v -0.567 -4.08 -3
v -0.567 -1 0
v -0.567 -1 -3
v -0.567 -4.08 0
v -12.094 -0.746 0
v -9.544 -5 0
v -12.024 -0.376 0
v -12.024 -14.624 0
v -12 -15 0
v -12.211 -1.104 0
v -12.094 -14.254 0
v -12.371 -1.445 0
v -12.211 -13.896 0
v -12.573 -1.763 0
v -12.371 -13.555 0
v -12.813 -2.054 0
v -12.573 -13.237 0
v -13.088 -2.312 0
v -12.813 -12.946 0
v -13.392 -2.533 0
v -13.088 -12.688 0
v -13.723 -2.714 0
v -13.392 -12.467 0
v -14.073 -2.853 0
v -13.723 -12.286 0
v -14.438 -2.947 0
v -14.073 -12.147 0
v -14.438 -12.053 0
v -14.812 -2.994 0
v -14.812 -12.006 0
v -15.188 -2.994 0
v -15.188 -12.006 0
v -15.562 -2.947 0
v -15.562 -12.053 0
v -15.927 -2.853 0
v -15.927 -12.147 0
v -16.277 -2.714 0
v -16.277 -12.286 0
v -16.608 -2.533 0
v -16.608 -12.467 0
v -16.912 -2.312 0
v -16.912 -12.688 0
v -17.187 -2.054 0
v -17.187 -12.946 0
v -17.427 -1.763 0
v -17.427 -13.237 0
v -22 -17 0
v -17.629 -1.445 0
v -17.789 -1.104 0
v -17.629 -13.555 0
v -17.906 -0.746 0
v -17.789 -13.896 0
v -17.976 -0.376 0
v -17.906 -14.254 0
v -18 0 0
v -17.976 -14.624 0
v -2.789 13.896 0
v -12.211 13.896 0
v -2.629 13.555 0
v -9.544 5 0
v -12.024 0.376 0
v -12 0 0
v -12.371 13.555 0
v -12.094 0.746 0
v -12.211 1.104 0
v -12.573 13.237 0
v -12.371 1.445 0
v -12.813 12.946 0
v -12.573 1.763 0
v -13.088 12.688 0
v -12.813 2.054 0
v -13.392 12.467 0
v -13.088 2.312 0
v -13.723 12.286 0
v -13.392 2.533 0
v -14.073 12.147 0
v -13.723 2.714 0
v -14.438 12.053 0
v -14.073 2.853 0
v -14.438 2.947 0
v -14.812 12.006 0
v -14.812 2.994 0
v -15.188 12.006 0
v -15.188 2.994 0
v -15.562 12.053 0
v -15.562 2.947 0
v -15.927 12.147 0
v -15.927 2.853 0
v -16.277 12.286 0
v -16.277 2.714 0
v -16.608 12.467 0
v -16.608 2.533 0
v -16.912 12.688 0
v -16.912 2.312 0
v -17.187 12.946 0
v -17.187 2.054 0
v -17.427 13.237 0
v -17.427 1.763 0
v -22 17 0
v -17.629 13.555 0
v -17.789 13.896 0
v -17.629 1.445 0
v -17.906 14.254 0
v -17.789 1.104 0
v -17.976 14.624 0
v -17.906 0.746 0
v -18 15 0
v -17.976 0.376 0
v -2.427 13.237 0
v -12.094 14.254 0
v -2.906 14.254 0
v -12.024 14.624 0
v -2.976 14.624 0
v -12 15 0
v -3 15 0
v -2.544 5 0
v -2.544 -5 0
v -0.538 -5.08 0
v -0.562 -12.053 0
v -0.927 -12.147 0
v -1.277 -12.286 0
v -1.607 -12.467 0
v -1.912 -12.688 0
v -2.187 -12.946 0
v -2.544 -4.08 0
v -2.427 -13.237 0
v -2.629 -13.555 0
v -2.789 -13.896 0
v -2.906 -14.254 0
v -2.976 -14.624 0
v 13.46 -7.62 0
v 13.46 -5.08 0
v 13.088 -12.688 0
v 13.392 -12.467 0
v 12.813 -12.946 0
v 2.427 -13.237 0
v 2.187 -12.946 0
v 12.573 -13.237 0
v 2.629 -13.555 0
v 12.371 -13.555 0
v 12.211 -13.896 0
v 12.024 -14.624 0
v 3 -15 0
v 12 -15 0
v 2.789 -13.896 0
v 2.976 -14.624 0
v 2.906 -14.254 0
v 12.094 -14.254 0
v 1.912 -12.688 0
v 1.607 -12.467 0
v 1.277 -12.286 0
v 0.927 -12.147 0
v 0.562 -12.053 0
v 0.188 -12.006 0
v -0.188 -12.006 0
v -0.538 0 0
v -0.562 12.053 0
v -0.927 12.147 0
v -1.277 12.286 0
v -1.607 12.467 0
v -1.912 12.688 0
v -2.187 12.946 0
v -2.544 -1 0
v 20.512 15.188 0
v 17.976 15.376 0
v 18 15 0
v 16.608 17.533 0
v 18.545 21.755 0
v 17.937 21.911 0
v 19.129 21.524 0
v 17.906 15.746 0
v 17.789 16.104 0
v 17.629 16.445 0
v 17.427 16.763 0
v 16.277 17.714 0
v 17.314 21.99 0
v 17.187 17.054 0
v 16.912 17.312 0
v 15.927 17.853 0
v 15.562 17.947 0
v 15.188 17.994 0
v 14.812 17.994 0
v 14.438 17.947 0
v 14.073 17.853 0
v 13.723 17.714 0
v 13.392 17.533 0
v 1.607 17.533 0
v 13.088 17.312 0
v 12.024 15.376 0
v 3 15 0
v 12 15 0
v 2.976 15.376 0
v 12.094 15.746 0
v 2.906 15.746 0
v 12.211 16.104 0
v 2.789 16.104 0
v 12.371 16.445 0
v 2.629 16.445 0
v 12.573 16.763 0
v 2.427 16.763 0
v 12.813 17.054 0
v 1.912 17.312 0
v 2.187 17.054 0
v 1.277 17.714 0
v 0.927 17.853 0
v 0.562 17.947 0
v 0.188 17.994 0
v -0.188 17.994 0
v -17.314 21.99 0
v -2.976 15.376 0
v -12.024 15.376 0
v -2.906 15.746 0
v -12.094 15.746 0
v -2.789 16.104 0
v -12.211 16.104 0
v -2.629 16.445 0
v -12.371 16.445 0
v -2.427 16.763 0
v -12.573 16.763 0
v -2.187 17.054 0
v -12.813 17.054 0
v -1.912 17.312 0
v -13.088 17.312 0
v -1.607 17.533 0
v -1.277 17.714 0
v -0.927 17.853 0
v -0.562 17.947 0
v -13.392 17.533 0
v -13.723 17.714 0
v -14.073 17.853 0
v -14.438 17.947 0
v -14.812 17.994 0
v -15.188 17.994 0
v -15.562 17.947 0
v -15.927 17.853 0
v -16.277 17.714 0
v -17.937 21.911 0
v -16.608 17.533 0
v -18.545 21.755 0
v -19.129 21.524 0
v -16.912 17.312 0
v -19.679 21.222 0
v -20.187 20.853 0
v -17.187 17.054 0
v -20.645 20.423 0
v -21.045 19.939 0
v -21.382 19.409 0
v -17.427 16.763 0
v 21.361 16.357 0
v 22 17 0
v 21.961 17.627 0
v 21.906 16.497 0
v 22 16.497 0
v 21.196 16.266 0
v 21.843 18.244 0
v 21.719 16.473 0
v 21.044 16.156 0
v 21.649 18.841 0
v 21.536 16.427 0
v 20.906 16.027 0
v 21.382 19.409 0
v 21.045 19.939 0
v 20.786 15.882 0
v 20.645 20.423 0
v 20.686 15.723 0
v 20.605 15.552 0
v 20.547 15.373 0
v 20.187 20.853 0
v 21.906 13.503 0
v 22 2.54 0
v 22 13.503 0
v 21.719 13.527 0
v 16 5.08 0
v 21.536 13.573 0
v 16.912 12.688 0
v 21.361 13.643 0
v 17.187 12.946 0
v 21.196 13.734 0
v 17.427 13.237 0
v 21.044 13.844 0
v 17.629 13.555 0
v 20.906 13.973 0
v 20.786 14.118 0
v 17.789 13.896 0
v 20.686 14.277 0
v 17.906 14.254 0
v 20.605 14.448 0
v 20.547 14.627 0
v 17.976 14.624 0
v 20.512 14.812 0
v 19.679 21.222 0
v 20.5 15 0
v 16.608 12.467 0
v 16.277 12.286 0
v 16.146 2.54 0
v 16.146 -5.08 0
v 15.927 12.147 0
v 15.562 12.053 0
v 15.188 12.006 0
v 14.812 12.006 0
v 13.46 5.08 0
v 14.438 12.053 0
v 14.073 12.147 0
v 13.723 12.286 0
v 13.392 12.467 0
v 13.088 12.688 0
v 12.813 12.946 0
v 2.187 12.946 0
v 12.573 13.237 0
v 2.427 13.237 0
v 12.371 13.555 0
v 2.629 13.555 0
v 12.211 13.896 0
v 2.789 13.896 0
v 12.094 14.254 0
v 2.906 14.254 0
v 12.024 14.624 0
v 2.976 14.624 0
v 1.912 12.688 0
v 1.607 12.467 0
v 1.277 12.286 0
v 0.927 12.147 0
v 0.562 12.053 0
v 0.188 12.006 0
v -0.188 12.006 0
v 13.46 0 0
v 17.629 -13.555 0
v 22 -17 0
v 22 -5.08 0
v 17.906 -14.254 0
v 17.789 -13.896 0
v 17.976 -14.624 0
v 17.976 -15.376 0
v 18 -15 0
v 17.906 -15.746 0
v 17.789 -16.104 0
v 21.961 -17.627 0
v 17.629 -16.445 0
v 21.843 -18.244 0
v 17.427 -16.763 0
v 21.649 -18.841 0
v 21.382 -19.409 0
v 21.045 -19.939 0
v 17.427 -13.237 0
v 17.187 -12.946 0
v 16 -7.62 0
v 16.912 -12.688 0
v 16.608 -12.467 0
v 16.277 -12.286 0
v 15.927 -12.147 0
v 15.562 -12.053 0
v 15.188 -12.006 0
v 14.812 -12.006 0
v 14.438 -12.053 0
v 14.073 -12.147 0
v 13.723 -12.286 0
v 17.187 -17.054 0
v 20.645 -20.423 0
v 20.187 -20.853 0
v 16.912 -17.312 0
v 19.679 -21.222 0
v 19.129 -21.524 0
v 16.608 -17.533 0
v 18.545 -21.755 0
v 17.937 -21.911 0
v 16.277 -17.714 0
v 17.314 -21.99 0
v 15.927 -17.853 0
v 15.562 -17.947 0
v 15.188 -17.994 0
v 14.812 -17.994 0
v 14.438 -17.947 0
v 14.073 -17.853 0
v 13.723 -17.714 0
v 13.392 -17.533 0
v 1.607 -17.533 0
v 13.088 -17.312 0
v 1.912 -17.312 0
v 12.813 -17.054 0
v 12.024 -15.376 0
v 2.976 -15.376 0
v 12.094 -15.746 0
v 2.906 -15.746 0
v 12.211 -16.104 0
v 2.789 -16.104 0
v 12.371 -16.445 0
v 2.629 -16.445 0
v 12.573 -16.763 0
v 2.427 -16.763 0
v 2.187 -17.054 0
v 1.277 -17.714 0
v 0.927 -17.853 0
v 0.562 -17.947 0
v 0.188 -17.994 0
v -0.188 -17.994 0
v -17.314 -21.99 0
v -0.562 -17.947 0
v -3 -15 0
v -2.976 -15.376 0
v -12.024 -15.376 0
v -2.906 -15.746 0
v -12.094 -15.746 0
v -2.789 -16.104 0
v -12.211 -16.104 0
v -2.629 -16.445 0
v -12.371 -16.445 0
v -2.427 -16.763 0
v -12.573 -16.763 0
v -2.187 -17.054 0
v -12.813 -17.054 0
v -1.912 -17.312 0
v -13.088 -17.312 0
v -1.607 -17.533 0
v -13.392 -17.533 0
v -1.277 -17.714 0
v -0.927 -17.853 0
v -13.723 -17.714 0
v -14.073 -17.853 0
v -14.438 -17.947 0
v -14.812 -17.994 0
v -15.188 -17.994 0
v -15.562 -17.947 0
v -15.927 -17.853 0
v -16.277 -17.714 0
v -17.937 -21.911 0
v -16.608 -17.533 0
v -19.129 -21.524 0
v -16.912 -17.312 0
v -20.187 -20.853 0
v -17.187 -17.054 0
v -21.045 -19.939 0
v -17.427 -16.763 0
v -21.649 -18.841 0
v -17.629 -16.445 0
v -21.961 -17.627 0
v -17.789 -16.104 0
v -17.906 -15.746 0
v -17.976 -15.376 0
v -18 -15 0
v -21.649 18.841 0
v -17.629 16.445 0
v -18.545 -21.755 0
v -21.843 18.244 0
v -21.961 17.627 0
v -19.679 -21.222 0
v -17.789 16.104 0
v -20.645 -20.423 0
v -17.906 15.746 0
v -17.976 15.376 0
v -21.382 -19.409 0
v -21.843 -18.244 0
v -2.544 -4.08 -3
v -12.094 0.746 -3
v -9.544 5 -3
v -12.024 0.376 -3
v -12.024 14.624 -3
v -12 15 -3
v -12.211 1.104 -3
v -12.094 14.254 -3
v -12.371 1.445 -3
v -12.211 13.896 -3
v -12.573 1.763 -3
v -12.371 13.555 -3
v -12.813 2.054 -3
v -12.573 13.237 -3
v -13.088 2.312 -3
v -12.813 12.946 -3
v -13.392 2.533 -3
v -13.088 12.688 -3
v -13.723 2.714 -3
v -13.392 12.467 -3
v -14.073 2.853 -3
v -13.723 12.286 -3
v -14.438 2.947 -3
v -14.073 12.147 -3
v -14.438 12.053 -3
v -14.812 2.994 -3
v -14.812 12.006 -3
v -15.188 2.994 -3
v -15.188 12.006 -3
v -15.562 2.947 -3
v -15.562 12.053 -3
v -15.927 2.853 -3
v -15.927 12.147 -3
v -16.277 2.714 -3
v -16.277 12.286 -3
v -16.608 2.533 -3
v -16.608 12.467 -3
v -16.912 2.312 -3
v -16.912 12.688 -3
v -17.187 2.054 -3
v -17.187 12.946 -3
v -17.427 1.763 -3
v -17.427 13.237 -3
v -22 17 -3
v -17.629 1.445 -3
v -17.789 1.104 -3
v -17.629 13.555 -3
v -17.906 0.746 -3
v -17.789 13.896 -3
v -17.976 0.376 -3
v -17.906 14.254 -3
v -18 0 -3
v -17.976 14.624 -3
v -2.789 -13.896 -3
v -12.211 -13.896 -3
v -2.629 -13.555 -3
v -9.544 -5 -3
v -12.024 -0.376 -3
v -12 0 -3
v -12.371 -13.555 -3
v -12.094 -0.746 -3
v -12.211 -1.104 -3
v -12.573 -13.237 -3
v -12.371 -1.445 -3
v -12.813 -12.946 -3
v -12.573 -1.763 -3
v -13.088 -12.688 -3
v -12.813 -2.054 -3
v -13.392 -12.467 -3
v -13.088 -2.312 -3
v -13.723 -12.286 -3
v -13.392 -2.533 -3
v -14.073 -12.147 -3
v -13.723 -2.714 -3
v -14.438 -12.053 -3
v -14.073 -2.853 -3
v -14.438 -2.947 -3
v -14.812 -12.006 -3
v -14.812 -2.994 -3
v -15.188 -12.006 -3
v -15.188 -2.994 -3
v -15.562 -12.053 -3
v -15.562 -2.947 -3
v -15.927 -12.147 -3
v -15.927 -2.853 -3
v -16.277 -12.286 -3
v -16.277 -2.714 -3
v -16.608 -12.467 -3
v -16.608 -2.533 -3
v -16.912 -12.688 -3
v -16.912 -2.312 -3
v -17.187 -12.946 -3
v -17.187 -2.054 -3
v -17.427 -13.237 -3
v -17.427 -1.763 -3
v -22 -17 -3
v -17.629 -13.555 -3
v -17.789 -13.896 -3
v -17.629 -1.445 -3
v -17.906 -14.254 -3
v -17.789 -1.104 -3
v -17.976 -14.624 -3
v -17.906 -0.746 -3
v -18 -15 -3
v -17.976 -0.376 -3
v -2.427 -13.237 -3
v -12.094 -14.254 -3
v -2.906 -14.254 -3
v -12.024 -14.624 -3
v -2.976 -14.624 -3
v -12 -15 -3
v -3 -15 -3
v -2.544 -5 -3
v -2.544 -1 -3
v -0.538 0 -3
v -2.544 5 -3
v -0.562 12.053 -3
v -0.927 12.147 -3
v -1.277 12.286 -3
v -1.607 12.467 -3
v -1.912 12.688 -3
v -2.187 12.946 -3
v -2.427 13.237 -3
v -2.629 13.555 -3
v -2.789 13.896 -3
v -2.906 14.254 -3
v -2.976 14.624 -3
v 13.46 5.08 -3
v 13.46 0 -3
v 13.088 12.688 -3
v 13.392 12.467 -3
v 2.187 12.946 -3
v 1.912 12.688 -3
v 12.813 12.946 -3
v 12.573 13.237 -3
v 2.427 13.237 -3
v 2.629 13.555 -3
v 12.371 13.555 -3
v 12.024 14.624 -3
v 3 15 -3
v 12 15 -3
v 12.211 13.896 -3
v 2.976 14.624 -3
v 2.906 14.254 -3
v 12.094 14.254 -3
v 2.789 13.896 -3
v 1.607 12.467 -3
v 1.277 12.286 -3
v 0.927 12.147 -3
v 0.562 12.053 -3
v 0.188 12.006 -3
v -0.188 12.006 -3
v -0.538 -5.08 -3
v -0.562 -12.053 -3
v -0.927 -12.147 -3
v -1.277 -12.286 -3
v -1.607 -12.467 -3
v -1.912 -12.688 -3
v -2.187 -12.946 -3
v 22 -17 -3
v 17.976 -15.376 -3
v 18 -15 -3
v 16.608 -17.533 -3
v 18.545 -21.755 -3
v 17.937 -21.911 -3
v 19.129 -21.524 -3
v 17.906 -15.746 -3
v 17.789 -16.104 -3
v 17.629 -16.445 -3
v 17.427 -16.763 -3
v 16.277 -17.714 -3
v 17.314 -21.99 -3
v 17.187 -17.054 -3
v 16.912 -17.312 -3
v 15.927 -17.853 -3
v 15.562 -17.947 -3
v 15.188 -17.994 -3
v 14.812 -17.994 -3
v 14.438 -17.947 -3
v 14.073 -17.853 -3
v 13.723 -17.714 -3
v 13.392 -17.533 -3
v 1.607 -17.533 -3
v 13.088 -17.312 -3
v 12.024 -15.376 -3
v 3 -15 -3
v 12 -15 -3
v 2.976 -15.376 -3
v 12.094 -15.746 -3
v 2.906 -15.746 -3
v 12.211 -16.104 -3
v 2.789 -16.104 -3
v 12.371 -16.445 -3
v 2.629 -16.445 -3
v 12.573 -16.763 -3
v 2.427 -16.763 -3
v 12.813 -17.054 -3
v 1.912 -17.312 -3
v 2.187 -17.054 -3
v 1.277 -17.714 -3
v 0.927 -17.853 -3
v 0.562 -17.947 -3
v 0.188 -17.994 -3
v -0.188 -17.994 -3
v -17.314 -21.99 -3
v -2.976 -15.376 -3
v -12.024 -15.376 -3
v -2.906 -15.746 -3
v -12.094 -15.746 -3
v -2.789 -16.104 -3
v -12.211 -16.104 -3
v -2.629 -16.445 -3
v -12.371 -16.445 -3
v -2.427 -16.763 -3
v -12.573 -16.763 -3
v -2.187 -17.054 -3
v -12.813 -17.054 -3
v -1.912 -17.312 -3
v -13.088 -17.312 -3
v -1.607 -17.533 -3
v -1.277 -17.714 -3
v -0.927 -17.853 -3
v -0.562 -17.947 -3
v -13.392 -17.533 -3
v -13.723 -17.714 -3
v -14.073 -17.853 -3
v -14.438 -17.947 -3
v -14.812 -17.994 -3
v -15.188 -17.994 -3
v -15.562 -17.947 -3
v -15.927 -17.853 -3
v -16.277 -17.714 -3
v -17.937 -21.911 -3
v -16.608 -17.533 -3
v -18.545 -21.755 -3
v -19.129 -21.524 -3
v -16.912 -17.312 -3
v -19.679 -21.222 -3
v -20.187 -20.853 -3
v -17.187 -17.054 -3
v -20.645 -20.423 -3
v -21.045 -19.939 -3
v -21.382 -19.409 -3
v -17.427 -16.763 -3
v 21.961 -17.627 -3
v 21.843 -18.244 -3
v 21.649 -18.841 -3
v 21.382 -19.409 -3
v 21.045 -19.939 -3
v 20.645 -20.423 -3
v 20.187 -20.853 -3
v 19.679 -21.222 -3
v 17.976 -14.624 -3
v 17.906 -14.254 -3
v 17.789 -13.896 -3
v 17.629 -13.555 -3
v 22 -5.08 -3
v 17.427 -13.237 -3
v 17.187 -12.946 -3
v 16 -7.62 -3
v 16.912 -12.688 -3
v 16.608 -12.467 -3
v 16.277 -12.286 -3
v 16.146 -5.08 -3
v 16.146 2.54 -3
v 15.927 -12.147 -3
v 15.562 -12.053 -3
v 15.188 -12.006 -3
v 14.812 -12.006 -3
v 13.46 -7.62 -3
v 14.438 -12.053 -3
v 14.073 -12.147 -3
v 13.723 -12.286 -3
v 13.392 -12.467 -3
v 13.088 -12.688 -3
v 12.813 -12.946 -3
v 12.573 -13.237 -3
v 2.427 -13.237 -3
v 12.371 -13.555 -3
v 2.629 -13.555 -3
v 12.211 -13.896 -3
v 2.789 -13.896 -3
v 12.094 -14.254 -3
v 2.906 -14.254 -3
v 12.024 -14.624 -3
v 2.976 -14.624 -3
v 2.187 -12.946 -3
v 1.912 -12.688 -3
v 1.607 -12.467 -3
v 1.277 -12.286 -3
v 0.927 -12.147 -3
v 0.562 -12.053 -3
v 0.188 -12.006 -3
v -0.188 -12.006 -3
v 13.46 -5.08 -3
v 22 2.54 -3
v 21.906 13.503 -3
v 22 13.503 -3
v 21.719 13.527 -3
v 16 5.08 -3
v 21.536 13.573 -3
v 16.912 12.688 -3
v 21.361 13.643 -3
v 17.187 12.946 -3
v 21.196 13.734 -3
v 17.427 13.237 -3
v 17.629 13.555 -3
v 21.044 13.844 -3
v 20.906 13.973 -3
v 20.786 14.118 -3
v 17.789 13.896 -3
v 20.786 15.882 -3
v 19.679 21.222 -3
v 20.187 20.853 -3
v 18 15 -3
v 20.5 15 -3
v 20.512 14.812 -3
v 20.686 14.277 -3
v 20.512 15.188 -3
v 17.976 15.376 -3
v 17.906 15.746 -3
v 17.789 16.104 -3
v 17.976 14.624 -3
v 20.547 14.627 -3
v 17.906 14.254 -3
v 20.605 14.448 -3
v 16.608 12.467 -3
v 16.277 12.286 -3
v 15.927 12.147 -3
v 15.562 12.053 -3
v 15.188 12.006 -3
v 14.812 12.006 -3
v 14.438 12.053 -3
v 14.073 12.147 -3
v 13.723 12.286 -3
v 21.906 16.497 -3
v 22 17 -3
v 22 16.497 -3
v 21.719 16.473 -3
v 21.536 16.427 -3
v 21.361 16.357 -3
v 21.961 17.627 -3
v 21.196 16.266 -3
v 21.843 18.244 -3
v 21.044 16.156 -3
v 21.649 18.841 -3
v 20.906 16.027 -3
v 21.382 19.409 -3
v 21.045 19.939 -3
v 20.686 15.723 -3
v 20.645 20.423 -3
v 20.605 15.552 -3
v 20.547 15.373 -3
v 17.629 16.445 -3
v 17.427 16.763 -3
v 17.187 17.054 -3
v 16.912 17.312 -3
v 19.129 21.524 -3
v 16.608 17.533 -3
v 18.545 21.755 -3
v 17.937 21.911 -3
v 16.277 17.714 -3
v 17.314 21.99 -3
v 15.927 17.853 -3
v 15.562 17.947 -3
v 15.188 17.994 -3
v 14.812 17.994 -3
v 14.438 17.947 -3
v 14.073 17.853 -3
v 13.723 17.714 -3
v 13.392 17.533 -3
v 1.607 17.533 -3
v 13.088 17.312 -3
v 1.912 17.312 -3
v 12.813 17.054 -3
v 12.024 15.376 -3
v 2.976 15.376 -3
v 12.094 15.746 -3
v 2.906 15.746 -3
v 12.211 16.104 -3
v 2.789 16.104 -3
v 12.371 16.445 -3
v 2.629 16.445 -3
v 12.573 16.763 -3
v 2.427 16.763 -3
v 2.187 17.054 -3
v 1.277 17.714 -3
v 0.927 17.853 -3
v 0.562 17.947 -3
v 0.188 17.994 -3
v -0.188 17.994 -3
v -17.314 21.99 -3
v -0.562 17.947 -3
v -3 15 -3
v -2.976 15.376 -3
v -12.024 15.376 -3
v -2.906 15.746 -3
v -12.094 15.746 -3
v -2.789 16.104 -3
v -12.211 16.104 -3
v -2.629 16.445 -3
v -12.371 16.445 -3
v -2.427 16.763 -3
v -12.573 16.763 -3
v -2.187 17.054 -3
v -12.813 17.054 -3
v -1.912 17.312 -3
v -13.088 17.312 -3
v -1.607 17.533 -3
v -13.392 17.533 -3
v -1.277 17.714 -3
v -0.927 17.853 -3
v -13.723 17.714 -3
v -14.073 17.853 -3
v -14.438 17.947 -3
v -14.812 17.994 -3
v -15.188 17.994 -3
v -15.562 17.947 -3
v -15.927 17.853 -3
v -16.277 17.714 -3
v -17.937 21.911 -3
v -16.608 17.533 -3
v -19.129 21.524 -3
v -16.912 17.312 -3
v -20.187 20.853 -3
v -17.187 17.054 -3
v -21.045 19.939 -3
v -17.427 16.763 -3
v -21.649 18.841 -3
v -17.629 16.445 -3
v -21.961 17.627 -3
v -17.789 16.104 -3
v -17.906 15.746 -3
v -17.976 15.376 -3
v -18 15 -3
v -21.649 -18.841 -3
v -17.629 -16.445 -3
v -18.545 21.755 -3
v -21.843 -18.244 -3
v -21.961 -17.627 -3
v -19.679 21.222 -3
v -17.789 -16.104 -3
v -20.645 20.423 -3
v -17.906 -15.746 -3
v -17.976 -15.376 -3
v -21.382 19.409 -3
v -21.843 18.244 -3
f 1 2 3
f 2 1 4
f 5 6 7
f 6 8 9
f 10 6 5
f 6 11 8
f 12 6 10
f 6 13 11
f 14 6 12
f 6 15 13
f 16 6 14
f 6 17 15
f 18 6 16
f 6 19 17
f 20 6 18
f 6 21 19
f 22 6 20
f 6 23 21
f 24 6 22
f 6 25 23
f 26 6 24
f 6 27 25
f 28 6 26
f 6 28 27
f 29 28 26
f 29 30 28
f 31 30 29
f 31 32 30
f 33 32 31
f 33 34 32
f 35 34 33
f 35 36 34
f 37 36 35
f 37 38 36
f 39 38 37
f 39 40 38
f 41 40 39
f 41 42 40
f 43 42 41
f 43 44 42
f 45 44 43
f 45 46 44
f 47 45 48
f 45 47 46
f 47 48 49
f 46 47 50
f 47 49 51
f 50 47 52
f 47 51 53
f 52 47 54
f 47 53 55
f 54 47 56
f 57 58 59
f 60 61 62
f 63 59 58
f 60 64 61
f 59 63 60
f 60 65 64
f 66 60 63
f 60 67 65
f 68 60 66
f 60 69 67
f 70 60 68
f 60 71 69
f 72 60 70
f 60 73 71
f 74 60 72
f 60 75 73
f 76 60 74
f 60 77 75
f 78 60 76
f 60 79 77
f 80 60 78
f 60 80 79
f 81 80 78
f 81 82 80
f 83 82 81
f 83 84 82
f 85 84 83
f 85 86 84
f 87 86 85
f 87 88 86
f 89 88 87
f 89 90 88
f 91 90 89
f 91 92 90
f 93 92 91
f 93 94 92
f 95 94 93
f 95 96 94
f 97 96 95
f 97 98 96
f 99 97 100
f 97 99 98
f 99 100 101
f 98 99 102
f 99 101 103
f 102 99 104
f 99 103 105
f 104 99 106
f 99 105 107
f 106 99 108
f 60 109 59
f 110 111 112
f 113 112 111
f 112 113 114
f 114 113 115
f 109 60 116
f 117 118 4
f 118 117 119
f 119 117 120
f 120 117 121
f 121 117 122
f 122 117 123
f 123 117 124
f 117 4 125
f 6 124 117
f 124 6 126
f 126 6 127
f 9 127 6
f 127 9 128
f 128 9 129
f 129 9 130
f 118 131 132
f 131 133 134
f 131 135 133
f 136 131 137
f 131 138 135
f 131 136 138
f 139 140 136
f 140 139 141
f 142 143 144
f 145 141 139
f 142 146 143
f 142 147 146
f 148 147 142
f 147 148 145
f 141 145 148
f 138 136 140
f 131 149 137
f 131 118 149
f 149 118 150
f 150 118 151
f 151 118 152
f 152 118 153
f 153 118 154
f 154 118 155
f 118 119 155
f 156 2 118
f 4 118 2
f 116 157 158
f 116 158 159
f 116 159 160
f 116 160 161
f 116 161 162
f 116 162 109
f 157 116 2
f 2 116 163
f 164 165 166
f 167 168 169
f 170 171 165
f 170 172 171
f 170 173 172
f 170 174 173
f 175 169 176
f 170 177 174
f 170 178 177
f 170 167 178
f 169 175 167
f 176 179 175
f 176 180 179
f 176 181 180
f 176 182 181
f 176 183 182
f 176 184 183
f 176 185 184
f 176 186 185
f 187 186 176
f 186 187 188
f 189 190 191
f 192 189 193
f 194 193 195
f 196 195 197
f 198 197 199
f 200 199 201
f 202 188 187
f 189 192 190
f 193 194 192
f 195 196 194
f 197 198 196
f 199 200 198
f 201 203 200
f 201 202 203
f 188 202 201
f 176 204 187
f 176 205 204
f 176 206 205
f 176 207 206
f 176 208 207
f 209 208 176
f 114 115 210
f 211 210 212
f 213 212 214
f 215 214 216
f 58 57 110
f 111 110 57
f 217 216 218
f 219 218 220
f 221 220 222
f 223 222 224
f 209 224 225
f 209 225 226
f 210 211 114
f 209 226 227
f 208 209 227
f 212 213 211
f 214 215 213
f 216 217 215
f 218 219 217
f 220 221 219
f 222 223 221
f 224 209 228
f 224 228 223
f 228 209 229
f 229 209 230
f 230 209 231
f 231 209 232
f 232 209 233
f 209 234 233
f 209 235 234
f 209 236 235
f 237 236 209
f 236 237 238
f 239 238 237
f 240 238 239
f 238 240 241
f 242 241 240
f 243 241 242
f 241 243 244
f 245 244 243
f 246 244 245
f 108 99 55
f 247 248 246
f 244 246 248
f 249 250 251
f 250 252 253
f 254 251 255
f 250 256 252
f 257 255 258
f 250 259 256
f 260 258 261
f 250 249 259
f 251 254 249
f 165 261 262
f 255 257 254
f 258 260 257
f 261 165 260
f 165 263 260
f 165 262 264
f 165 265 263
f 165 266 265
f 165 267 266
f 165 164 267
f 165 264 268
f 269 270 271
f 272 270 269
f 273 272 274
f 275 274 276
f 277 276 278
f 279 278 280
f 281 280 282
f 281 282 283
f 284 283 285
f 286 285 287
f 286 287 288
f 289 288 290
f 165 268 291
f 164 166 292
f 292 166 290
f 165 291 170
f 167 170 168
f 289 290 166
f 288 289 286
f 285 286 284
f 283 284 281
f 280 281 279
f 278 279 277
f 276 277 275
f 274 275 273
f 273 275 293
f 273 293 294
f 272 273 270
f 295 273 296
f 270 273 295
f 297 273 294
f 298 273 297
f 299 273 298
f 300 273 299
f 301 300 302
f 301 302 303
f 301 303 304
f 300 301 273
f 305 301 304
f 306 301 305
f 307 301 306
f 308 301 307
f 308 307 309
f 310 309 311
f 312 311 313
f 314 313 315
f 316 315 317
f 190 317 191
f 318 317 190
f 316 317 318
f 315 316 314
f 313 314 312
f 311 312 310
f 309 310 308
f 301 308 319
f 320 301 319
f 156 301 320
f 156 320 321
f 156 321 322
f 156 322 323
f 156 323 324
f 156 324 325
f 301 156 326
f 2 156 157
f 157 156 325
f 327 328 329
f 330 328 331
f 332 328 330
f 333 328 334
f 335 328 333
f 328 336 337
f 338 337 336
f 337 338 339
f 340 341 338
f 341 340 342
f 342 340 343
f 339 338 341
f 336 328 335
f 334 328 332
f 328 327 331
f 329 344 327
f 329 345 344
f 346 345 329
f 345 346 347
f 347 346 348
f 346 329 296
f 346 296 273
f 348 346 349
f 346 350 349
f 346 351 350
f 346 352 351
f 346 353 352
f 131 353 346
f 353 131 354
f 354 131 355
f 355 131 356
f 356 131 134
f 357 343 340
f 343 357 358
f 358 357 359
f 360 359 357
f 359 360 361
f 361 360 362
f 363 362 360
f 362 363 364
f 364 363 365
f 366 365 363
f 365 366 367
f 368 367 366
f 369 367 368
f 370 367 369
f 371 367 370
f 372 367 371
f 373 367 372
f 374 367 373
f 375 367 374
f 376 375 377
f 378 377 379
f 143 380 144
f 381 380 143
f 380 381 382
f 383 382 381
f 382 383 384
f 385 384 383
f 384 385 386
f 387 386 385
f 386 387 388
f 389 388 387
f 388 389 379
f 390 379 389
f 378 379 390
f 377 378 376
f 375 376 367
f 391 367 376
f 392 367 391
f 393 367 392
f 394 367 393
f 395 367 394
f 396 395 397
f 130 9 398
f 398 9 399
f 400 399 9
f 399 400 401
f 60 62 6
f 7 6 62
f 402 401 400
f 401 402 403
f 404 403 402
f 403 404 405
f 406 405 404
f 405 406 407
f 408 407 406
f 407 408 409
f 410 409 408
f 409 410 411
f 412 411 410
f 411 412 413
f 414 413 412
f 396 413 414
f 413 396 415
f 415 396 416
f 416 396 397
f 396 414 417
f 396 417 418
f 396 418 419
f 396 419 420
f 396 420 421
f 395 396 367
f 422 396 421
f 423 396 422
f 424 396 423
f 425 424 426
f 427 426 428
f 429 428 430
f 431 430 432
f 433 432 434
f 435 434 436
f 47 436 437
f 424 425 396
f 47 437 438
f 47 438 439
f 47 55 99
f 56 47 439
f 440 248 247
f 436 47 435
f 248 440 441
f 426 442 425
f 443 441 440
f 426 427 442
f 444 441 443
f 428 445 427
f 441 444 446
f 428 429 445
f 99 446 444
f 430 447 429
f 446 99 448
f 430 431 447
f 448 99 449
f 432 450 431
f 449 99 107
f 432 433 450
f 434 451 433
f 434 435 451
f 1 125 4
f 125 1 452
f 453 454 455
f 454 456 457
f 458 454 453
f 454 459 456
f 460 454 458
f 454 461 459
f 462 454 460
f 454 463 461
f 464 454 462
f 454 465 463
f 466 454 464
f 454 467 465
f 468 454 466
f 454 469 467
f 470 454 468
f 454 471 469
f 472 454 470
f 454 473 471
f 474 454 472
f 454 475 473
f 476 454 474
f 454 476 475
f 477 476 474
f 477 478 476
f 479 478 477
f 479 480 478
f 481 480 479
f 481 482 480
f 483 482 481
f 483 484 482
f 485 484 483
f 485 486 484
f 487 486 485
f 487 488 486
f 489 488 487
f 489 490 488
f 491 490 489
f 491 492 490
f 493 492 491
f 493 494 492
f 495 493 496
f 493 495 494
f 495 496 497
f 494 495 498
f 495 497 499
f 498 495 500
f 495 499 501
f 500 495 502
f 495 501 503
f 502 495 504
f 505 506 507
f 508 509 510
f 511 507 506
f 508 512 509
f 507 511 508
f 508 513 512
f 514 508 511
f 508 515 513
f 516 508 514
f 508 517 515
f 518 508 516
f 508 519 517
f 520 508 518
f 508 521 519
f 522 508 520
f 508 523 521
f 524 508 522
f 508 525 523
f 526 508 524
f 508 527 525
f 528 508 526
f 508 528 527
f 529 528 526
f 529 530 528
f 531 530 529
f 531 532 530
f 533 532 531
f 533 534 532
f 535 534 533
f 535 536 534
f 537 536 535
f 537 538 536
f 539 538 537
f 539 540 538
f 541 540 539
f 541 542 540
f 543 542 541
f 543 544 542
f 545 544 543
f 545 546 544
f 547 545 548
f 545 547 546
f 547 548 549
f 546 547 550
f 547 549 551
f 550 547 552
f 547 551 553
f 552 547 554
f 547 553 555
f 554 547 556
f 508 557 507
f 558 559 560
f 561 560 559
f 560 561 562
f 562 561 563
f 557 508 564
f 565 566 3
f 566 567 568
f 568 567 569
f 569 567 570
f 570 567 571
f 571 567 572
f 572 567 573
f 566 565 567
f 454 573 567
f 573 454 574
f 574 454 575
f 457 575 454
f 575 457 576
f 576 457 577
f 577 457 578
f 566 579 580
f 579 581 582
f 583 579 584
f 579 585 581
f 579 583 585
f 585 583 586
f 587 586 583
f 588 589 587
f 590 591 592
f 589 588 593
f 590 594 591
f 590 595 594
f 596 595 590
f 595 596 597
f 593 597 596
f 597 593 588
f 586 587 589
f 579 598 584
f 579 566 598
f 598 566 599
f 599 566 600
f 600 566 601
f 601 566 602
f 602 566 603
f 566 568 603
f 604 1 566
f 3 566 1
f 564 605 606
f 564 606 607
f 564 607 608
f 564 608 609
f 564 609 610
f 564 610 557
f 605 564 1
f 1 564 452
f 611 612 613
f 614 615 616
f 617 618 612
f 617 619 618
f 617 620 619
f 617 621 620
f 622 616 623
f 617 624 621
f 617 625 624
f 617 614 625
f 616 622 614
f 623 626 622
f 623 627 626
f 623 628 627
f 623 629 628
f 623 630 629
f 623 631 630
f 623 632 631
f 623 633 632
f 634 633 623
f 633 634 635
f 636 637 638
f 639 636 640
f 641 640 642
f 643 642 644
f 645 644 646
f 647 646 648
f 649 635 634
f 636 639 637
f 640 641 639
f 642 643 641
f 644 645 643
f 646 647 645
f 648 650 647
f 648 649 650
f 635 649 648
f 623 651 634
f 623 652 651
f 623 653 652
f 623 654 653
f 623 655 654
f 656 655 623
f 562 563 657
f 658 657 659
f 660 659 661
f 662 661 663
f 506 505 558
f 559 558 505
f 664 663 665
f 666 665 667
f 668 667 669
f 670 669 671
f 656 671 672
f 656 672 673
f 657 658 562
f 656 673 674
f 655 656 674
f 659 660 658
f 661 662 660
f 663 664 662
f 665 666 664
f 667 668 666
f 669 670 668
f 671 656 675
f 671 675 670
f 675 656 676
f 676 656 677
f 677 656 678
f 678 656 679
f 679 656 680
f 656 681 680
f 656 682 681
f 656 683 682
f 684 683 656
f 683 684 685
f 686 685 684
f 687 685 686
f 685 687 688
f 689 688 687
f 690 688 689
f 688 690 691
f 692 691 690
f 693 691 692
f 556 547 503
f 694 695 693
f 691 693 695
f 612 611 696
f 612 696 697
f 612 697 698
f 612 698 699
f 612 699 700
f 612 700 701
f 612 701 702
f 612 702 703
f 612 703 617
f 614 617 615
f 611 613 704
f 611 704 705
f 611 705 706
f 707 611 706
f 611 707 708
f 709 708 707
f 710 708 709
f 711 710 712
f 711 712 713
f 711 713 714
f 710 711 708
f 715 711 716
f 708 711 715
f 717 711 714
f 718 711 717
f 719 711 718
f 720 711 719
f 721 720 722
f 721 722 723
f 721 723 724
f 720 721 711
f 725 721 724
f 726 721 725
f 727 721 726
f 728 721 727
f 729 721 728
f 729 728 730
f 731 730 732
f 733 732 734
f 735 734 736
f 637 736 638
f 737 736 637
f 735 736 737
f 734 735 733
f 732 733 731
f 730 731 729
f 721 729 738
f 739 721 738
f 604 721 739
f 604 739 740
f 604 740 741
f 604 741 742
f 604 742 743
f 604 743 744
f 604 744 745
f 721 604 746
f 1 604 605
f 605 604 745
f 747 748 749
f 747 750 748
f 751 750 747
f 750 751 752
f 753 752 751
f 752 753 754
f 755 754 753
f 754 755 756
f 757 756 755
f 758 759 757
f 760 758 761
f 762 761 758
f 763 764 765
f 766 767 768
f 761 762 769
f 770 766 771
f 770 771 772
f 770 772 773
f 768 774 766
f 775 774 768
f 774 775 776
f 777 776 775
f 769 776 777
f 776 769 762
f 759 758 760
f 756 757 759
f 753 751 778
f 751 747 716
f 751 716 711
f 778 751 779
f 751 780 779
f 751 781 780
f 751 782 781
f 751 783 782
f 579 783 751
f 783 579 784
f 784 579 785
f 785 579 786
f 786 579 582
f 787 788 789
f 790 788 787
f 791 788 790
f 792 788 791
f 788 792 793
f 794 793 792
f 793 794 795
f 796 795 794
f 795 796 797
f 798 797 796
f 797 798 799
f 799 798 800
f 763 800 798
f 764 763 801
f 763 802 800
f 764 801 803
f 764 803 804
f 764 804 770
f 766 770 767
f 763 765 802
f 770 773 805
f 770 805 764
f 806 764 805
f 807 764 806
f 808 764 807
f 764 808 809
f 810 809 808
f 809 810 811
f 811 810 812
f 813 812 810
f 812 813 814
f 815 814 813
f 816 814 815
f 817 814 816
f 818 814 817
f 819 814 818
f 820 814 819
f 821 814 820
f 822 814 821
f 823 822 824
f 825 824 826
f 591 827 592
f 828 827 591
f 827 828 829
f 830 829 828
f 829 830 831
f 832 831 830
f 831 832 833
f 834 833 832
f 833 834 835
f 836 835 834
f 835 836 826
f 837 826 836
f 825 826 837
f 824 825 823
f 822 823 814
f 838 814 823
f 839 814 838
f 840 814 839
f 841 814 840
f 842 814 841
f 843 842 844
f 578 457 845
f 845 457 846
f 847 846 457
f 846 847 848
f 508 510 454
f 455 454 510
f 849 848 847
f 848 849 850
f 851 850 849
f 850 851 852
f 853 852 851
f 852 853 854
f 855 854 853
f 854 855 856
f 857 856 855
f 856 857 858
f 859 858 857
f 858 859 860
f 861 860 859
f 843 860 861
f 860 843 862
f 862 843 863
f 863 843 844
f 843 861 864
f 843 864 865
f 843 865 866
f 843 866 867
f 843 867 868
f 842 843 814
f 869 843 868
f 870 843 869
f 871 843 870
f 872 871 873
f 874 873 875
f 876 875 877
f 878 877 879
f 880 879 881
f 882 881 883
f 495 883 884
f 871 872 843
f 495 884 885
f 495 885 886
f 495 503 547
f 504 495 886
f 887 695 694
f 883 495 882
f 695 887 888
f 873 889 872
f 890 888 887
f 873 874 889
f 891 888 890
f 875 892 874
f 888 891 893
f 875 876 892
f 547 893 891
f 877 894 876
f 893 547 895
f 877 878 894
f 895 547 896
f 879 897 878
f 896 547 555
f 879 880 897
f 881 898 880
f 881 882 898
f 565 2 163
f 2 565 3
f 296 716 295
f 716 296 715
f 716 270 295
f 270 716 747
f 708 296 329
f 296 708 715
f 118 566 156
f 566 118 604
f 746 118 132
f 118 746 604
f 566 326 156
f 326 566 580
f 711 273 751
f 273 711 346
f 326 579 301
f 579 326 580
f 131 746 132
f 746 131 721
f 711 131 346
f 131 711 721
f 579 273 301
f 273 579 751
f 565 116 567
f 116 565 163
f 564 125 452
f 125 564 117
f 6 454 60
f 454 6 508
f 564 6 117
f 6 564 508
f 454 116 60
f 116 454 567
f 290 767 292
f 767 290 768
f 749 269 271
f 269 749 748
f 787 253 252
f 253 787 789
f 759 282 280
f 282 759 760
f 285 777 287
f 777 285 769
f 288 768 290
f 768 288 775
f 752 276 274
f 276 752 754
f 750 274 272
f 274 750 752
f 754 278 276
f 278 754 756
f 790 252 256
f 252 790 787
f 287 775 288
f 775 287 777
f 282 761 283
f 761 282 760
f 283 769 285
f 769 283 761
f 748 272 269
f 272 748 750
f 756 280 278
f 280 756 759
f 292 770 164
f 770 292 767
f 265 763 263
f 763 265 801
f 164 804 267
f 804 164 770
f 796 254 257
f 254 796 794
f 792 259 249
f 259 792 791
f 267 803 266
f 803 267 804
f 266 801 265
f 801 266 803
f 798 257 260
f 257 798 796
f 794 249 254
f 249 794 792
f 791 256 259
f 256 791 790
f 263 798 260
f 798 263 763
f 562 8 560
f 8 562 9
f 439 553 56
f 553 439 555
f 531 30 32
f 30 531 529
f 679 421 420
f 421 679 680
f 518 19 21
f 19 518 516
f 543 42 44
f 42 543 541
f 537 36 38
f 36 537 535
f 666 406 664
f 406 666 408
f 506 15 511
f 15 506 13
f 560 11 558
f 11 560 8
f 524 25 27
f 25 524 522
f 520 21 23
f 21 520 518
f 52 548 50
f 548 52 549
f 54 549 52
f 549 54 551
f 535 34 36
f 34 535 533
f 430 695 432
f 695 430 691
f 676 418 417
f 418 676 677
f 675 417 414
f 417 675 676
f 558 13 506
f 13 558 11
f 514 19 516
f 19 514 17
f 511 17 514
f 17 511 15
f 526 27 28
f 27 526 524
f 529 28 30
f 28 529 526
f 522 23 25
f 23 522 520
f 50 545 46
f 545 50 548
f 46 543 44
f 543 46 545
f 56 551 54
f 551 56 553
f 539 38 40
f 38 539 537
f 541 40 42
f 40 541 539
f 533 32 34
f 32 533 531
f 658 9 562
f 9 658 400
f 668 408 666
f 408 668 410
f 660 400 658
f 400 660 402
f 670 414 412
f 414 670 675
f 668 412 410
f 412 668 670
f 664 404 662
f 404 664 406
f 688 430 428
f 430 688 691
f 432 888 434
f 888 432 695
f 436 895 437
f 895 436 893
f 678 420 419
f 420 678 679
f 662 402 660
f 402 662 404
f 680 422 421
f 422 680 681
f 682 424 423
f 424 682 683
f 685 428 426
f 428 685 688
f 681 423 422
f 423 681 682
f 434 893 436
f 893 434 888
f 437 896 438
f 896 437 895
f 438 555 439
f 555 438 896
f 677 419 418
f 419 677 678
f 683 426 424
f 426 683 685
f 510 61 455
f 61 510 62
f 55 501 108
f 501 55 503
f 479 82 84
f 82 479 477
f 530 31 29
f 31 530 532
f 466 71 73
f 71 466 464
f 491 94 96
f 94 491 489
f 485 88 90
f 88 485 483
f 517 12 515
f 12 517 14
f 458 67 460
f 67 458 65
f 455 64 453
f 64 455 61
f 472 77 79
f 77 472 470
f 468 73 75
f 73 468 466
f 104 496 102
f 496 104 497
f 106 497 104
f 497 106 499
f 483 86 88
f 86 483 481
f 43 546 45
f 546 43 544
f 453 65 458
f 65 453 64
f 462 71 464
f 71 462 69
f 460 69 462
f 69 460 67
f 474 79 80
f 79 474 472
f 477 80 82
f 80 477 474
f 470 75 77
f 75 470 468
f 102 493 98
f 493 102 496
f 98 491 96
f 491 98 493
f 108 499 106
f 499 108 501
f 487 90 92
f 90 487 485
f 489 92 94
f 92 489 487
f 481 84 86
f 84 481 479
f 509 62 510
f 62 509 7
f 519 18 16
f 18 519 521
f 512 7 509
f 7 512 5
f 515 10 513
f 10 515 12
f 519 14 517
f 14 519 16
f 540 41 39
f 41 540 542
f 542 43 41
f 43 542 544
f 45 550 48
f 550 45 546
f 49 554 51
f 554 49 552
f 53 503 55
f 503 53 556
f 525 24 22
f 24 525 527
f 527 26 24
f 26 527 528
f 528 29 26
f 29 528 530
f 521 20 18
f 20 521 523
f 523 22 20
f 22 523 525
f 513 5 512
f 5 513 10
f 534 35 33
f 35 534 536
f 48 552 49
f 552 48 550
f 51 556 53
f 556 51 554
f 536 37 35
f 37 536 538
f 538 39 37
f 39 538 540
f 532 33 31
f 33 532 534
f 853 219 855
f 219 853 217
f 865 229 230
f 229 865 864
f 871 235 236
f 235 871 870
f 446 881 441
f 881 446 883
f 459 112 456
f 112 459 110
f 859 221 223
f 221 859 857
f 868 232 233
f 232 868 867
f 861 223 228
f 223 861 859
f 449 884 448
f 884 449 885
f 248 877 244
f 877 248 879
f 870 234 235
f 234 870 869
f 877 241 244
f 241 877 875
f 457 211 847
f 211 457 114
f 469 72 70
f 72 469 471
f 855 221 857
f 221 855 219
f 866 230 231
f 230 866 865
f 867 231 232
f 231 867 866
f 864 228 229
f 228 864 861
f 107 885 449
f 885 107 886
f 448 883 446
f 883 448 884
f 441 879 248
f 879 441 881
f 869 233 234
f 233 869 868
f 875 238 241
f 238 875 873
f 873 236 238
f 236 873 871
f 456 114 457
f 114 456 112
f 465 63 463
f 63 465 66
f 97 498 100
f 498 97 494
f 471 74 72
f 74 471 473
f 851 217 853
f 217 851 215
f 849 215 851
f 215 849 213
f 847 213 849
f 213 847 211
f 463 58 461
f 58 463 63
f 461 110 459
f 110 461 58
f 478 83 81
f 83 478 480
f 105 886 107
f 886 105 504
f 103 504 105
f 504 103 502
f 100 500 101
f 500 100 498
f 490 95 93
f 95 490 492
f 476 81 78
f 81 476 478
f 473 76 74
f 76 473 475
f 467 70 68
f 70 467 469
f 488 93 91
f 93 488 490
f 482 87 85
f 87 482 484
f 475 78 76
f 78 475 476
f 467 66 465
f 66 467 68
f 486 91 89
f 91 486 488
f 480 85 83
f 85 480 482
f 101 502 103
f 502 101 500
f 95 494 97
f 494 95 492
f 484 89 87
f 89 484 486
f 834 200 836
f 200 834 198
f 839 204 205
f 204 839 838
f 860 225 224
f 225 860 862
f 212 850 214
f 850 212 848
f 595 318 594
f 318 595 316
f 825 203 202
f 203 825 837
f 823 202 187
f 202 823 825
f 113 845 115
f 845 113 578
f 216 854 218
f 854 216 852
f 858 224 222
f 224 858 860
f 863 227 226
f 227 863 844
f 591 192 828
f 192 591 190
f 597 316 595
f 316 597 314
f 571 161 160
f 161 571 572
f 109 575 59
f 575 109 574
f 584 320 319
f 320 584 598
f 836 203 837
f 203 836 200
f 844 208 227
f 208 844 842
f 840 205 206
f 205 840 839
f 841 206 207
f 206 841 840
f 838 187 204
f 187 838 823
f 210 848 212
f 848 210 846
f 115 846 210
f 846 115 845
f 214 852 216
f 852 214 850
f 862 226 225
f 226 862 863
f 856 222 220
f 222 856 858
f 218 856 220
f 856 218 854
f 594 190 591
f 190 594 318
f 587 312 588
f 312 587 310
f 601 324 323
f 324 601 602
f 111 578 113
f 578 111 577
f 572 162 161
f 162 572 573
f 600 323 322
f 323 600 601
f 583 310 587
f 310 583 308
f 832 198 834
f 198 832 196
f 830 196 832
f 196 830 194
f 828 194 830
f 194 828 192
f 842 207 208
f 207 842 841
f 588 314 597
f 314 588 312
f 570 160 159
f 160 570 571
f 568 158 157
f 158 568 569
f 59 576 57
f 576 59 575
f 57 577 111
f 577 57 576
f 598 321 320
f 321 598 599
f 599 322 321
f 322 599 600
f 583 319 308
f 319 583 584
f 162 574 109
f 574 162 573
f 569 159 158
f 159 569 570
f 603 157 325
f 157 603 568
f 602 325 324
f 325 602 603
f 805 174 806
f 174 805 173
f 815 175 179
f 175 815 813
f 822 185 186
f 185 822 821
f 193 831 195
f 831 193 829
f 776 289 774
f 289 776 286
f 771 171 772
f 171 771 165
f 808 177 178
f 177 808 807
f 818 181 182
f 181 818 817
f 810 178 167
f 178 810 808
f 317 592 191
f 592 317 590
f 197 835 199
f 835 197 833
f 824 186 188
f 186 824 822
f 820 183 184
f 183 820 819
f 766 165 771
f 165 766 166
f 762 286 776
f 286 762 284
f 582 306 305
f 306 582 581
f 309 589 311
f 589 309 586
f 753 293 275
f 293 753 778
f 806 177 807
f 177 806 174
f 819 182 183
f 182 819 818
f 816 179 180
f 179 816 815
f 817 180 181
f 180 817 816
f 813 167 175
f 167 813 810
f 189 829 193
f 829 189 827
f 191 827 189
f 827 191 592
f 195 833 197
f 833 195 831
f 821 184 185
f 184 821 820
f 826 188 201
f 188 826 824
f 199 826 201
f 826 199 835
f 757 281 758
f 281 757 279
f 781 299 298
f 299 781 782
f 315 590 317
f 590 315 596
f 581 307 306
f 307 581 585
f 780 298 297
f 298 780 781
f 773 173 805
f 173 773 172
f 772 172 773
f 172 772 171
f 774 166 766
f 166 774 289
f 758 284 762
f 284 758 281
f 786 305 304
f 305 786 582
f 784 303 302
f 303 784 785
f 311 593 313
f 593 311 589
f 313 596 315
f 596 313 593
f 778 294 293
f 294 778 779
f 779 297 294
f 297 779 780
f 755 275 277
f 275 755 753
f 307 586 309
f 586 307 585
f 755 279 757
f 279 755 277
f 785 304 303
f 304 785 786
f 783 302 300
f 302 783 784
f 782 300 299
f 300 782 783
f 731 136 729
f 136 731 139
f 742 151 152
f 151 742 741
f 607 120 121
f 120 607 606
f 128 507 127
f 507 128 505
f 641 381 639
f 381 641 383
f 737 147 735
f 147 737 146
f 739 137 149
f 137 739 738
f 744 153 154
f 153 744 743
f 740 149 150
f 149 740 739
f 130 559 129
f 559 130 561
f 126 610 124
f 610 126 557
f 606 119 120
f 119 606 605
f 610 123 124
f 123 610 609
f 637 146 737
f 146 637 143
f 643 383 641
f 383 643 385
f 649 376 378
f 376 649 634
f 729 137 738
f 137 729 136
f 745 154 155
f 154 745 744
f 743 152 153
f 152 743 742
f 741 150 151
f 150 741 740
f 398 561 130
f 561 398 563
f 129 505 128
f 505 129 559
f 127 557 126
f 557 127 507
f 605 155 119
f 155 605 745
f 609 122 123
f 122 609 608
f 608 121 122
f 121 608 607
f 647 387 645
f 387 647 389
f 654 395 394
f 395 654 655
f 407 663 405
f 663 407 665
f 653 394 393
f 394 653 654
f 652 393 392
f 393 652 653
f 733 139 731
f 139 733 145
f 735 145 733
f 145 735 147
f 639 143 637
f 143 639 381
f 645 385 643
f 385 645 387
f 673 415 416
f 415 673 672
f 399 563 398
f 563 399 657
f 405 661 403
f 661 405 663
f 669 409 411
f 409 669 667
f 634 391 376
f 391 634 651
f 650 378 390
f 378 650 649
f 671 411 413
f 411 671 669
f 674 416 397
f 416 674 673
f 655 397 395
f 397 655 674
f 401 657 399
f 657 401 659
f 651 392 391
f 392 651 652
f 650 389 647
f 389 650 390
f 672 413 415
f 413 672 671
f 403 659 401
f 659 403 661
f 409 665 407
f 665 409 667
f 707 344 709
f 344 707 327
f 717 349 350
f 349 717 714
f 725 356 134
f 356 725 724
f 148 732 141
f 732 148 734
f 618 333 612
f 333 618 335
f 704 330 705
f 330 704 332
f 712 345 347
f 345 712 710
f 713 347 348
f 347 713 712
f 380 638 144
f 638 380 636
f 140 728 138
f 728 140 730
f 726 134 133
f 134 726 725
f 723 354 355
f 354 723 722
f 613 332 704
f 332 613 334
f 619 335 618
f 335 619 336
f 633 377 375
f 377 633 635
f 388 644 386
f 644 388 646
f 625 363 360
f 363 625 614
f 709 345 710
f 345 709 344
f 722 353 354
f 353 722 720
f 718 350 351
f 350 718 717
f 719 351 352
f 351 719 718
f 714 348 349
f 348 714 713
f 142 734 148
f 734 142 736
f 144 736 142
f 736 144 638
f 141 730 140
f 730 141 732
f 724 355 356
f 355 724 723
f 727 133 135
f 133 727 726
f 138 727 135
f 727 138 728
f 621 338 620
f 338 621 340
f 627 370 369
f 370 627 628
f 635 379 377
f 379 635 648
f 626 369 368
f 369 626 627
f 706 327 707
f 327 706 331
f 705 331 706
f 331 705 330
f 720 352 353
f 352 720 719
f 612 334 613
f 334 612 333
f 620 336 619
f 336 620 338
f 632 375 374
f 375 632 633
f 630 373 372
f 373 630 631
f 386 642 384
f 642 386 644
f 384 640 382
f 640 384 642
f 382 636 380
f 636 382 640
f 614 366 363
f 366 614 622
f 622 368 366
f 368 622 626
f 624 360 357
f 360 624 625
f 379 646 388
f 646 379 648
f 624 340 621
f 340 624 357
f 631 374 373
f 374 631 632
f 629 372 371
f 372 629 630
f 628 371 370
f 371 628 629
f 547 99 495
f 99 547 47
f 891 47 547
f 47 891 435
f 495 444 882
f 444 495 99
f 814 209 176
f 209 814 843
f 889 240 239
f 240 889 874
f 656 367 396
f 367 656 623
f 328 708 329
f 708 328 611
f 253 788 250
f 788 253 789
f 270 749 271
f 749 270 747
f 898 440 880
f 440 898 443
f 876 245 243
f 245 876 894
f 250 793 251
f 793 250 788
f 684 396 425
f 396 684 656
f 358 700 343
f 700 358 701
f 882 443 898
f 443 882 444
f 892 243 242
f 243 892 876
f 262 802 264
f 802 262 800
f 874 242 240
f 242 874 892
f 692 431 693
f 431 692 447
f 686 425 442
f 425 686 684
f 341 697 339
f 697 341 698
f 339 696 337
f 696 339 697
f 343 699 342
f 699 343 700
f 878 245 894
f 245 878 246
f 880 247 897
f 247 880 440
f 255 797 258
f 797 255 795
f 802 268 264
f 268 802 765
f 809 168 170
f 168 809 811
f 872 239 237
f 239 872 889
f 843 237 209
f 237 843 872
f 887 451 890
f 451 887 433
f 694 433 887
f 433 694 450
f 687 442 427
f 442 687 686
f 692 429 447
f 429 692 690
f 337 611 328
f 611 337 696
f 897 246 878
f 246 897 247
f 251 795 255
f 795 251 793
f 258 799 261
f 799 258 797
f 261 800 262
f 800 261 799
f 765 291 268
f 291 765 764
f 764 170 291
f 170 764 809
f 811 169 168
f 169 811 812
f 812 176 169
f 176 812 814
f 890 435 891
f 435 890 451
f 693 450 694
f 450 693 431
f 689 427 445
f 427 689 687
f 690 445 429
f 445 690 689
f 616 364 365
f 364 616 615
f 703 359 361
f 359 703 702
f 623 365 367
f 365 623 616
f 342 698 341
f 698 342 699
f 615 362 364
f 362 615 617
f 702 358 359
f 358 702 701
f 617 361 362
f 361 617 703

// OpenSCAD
$fn = 50;


difference() {
	union() {
		translate(v = [0, 0, -3]) {
			hull() {
				translate(v = [-17.0000000000, 17.0000000000, 0]) {
					cylinder(h = 3, r = 5);
				}
				translate(v = [17.0000000000, 17.0000000000, 0]) {
					cylinder(h = 3, r = 5);
				}
				translate(v = [-17.0000000000, -17.0000000000, 0]) {
					cylinder(h = 3, r = 5);
				}
				translate(v = [17.0000000000, -17.0000000000, 0]) {
					cylinder(h = 3, r = 5);
				}
			}
		}
	}
	union() {
		translate(v = [22.5000000000, 0, -3]) {
			rotate(a = [0, 0, 180]) {
				difference() {
					union() {
						#translate(v = [23.0670000000, 1.0000000000, 0]) {
							cube(size = [5, 3.0800000000, 3]);
						}
						#translate(v = [0.3540000000, -2.5400000000, 0]) {
							cube(size = [6, 7.6200000000, 3]);
						}
						#translate(v = [9.0380000000, 0.0000000000, 0]) {
							cube(size = [14, 5.0800000000, 3]);
						}
						#translate(v = [6.5000000000, -5.0800000000, 0]) {
							cube(size = [2.5400000000, 12.7000000000, 3]);
						}
						#translate(v = [25.0440000000, -5.0000000000, 0]) {
							cube(size = [7, 10, 3]);
						}
						#translate(v = [0.5000000000, -15, 0.0000000000]) {
							cylinder(h = 3, r = 1.5000000000);
						}
					}
					union();
				}
			}
		}
		translate(v = [-15.0000000000, -15.0000000000, -50.0000000000]) {
			cylinder(h = 100, r = 3.0000000000);
		}
		translate(v = [-15.0000000000, 0.0000000000, -50.0000000000]) {
			cylinder(h = 100, r = 3.0000000000);
		}
		translate(v = [-15.0000000000, 15.0000000000, -50.0000000000]) {
			cylinder(h = 100, r = 3.0000000000);
		}
		translate(v = [-15.0000000000, 15.0000000000, -50.0000000000]) {
			cylinder(h = 100, r = 3.0000000000);
		}
		translate(v = [0.0000000000, 15.0000000000, -50.0000000000]) {
			cylinder(h = 100, r = 3.0000000000);
		}
		translate(v = [15.0000000000, 15.0000000000, -50.0000000000]) {
			cylinder(h = 100, r = 3.0000000000);
		}
		translate(v = [-15.0000000000, -15.0000000000, -50.0000000000]) {
			cylinder(h = 100, r = 3.0000000000);
		}
		translate(v = [0.0000000000, -15.0000000000, -50.0000000000]) {
			cylinder(h = 100, r = 3.0000000000);
		}
		translate(v = [15.0000000000, -15.0000000000, -50.0000000000]) {
			cylinder(h = 100, r = 3.0000000000);
		}
	}
}
